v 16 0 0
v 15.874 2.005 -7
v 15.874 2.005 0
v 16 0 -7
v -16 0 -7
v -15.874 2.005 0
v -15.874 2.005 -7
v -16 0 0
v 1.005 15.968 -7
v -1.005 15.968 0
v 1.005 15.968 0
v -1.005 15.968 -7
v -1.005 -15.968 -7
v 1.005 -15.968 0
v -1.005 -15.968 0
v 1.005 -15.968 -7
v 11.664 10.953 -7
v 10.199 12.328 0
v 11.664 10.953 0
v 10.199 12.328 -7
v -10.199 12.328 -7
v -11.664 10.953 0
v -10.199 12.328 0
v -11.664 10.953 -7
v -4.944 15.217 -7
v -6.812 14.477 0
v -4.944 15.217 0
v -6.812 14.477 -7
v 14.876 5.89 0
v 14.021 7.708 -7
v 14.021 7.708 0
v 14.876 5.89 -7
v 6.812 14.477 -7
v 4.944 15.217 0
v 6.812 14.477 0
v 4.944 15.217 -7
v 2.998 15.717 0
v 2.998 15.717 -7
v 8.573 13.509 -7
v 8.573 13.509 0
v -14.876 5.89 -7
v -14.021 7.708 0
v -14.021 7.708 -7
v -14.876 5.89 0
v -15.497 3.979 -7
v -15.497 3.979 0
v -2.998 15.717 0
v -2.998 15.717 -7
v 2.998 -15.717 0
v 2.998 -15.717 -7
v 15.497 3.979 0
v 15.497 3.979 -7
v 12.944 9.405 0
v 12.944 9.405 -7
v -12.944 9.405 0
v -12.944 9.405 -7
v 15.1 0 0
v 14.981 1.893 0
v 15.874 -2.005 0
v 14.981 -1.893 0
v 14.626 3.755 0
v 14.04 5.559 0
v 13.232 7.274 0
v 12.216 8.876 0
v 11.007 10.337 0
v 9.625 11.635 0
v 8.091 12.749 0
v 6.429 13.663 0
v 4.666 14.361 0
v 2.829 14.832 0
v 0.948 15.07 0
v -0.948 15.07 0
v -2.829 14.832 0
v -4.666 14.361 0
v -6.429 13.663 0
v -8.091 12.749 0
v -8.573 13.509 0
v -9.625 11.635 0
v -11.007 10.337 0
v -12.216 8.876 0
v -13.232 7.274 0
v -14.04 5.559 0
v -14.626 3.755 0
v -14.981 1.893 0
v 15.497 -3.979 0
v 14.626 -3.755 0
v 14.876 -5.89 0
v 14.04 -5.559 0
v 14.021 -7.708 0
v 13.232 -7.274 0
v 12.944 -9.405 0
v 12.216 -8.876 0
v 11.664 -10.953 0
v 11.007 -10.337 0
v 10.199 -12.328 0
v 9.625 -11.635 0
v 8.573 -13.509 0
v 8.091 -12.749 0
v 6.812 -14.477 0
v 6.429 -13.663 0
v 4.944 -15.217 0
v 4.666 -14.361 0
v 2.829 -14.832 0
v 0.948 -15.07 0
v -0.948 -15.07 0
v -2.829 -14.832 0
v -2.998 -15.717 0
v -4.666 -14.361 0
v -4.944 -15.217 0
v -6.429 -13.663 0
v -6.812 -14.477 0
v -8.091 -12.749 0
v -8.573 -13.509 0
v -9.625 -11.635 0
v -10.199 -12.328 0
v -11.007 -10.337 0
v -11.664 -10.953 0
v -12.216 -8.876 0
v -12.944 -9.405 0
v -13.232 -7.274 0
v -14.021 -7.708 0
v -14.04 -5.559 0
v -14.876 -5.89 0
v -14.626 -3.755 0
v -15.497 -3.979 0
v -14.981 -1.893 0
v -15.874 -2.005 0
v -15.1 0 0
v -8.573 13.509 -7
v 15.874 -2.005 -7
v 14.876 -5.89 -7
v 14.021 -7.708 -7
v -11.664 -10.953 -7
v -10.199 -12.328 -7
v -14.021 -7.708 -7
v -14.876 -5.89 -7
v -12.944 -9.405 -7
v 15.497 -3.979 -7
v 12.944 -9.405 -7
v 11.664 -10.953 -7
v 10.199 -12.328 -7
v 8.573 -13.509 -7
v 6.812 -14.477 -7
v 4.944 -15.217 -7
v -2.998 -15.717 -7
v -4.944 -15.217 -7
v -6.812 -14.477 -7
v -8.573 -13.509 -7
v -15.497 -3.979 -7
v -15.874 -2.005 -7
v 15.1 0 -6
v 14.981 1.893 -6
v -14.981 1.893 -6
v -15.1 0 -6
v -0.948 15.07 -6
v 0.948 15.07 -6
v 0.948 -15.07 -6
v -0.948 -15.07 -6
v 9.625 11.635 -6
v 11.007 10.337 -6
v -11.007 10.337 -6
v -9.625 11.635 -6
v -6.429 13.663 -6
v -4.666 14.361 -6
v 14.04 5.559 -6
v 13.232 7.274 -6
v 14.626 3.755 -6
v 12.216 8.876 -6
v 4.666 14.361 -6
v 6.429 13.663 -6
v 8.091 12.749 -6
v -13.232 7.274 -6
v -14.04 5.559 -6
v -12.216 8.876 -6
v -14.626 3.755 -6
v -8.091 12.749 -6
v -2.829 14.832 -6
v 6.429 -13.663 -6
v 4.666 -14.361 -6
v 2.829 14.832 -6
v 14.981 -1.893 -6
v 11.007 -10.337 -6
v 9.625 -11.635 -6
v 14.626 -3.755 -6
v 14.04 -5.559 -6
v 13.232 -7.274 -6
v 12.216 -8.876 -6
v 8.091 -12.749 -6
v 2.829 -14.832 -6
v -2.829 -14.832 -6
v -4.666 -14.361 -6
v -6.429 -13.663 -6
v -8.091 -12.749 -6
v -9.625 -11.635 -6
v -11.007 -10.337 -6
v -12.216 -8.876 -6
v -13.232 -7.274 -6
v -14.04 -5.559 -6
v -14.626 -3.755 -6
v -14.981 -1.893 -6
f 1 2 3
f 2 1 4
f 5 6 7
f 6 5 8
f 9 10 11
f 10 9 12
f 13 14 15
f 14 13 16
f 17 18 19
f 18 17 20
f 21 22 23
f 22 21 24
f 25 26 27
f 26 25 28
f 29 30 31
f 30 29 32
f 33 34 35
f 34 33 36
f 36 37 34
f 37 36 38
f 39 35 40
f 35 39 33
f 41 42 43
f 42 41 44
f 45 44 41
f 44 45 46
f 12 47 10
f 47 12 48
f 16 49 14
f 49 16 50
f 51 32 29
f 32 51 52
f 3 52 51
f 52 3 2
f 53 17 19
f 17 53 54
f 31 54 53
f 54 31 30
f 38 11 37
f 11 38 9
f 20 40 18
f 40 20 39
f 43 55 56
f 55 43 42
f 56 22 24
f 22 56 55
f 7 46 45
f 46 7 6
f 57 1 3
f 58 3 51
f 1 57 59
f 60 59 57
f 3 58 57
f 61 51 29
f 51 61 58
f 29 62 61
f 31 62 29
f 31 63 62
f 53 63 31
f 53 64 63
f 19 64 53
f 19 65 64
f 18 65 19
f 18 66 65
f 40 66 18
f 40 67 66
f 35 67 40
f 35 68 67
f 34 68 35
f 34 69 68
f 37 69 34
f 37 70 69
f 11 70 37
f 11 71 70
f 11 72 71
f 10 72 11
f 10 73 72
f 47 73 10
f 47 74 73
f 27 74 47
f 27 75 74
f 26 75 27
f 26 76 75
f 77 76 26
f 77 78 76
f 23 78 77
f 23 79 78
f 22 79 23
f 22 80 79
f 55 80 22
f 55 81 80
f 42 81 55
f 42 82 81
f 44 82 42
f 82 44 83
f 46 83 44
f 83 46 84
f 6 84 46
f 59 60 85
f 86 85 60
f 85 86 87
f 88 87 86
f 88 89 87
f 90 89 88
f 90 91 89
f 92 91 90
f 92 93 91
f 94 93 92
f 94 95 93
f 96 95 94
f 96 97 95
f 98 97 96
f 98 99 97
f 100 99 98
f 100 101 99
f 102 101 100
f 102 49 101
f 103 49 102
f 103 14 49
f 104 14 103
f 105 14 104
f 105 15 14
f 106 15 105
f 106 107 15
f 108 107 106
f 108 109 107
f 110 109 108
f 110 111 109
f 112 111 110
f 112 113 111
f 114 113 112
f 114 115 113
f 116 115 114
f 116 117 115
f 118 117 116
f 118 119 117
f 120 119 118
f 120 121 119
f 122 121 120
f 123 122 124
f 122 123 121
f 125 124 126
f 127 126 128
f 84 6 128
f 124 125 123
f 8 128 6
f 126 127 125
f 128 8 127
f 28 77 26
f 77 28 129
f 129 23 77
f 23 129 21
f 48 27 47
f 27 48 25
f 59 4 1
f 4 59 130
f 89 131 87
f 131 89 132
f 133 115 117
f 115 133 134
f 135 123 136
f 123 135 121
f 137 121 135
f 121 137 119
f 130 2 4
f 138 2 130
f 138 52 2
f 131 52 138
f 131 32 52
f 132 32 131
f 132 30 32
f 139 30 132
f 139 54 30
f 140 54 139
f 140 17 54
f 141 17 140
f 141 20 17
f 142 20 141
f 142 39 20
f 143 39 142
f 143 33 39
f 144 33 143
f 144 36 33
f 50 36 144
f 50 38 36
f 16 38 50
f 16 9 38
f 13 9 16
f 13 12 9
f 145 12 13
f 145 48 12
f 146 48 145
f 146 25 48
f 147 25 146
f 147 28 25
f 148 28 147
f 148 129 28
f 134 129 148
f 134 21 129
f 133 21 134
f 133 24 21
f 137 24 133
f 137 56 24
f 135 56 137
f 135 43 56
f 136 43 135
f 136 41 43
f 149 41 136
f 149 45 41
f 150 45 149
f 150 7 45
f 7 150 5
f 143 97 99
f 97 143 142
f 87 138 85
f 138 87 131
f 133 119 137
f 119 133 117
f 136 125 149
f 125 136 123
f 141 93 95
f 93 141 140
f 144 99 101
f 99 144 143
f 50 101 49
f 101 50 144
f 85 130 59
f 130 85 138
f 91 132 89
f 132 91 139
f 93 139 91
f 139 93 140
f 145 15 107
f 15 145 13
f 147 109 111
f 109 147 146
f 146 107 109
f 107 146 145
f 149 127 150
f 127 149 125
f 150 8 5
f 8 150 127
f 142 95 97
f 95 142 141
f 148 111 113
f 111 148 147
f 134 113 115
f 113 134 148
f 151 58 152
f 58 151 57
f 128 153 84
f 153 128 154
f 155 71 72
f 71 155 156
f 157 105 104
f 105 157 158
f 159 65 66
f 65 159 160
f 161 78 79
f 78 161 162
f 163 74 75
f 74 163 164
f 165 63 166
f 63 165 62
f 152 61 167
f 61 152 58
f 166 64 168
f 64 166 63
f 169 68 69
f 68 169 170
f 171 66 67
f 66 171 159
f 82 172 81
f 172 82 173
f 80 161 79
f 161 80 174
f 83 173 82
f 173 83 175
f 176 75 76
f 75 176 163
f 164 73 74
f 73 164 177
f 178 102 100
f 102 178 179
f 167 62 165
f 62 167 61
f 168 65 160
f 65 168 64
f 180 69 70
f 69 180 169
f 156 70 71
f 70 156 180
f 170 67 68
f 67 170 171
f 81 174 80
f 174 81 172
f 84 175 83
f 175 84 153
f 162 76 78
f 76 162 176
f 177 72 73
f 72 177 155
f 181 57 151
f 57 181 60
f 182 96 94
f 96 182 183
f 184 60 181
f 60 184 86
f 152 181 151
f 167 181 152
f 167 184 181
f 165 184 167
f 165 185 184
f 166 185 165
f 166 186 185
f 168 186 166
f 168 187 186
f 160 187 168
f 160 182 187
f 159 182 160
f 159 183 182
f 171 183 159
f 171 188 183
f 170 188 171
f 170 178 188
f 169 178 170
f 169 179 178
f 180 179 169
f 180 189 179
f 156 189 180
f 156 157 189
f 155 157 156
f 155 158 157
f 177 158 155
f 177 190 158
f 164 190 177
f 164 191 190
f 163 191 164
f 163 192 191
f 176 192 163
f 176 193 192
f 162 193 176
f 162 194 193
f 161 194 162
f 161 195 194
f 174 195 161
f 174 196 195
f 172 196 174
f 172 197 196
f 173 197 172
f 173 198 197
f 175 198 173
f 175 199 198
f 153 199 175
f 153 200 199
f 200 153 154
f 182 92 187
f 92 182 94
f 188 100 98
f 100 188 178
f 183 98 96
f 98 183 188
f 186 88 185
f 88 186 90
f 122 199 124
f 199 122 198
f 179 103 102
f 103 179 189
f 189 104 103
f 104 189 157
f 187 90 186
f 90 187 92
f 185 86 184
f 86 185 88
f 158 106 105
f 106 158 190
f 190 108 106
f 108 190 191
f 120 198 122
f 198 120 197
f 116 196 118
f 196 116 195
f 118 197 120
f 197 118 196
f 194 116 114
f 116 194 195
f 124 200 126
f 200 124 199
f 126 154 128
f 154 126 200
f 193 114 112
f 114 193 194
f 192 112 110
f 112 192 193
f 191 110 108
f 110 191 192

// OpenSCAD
$fn = 50;


difference() {
	union() {
		translate(v = [0, 0, -7.0000000000]) {
			cylinder(h = 7, r = 16.0000000000);
		}
	}
	union() {
		#translate(v = [0, 0, -6.0000000000]) {
			cylinder(h = 6, r = 15.1000000000);
		}
	}
}
